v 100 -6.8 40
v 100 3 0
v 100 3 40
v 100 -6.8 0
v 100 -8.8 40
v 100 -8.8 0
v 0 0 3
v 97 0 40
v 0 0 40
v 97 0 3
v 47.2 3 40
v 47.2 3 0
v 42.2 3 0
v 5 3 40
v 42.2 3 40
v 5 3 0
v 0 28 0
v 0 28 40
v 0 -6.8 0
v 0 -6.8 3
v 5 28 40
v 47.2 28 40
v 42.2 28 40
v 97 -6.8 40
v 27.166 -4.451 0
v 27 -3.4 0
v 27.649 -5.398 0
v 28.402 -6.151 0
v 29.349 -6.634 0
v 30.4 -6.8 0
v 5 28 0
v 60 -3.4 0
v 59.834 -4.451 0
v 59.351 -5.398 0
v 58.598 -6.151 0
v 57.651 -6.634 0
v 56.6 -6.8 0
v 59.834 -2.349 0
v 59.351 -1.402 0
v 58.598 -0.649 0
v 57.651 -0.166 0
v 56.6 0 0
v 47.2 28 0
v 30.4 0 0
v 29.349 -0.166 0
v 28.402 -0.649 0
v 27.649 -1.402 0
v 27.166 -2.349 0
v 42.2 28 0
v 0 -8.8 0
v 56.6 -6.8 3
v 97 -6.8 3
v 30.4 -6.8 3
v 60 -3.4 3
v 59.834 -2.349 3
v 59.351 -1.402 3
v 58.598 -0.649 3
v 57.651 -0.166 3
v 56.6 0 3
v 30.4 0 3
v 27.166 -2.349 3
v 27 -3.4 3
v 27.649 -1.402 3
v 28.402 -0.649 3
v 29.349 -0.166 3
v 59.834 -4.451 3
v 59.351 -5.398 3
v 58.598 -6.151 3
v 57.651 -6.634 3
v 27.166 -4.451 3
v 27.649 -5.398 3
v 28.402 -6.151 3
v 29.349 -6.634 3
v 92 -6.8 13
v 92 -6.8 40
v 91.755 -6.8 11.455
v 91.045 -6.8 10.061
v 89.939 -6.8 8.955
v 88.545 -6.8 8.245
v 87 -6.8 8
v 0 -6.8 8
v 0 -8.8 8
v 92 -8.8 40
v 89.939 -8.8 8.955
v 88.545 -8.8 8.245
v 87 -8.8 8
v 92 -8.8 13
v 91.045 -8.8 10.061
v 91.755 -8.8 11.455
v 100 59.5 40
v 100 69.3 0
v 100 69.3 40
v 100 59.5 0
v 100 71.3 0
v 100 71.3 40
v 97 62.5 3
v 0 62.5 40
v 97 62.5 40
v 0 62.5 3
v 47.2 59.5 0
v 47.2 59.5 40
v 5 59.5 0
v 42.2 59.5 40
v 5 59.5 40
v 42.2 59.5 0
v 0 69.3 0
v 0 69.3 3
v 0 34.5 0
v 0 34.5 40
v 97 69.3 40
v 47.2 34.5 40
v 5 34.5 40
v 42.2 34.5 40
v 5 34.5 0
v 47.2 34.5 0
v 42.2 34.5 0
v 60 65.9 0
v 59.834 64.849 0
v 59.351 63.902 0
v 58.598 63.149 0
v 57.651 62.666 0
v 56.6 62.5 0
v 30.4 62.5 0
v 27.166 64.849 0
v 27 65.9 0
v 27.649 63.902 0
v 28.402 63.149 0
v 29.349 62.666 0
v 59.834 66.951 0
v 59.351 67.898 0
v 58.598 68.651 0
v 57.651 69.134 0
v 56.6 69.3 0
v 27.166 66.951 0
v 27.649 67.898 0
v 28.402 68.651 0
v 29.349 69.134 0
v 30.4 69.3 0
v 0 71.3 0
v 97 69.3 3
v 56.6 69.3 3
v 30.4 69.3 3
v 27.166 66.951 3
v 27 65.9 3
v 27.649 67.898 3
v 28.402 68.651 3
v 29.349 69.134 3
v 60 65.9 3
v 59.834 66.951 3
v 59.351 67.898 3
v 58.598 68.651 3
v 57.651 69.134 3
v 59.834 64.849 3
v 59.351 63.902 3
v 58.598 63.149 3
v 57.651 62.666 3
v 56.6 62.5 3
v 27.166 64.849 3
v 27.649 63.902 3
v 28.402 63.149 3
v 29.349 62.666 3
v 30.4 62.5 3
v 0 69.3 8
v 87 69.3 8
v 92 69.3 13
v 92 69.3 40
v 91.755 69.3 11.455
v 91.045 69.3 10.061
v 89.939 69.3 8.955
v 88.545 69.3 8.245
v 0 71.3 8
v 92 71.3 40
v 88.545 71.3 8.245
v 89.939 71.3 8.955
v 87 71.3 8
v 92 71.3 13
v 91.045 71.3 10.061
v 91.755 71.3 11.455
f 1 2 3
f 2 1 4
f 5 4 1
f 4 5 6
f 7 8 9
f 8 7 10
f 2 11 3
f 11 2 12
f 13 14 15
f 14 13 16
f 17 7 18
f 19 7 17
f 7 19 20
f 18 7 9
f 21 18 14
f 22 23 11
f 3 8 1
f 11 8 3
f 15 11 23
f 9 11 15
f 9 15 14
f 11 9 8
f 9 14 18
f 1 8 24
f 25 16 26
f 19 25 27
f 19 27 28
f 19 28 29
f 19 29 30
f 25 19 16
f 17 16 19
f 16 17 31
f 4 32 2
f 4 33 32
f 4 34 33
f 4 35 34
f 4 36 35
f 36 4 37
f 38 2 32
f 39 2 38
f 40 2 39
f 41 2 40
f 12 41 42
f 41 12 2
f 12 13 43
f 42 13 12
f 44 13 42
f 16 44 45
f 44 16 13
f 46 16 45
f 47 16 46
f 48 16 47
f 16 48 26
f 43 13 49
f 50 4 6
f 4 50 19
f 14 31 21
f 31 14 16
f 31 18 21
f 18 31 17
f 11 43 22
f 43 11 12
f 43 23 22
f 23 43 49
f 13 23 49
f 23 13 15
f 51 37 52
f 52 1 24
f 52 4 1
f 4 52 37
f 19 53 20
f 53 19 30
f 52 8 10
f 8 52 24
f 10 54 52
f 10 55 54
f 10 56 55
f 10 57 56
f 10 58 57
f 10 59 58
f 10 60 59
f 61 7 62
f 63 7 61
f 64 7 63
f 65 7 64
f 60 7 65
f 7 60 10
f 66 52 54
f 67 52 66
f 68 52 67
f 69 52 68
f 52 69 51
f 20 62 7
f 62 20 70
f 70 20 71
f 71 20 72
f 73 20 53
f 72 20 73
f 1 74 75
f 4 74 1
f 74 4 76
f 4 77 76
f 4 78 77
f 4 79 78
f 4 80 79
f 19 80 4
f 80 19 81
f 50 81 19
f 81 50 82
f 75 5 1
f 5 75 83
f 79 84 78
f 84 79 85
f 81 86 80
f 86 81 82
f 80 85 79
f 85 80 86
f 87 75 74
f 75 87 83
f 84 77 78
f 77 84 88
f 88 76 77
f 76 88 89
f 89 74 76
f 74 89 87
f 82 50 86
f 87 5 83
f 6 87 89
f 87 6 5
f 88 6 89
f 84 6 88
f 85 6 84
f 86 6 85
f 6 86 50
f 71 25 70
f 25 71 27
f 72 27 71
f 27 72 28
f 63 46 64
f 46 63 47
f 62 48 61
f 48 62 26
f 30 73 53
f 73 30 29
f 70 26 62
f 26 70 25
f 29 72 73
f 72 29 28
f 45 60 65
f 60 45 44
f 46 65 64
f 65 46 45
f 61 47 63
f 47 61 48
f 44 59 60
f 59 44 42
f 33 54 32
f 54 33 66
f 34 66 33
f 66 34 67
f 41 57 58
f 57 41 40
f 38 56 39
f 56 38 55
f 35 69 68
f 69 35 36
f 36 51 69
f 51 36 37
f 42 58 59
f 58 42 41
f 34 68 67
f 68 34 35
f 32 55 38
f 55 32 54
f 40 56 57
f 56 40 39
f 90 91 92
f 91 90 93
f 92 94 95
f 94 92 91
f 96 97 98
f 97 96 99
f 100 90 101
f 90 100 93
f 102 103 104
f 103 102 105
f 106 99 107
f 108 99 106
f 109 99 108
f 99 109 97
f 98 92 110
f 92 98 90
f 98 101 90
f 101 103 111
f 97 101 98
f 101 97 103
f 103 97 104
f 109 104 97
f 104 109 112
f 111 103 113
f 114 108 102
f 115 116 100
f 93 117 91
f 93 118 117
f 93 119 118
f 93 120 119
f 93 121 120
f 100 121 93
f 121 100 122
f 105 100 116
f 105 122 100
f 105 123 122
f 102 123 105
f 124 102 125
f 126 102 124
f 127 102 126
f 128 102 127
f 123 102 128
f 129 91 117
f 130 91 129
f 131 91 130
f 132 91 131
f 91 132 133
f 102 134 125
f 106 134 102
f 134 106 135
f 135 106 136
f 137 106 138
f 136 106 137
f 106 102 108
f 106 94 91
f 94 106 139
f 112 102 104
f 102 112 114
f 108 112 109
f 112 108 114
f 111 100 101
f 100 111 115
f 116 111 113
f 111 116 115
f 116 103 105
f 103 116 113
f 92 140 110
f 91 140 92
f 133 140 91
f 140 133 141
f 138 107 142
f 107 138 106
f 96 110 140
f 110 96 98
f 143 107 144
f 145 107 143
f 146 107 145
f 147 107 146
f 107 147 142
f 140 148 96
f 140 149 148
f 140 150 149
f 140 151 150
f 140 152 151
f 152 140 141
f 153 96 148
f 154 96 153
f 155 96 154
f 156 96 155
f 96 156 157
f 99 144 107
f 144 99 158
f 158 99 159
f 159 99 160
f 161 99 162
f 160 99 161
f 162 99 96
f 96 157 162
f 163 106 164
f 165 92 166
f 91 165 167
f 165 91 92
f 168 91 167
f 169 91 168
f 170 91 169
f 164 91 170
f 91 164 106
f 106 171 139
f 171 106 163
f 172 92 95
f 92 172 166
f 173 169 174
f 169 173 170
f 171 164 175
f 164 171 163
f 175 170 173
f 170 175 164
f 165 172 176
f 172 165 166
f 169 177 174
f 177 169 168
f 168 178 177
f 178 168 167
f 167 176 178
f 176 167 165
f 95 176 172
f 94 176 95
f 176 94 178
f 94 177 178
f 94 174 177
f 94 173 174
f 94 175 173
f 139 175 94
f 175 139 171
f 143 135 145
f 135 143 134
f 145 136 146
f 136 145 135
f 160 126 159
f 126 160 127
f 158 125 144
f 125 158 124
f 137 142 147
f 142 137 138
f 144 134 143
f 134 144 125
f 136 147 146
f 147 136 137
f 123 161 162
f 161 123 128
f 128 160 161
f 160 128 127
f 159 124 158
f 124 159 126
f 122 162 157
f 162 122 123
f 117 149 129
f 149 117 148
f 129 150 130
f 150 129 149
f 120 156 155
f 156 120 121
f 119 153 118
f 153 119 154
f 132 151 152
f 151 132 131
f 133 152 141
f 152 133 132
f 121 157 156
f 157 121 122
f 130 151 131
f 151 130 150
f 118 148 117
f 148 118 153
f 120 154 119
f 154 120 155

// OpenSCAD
cd = 25; // claw depth
cth = 5; // claw thickness
bth = 3; // back plate thickness
fsz = 5; // frame size (the ipad blocker in the front)
fth = 2; // frame thickness (the ipad blocker in the front)
sfsz = 3;// support frame size (the one surround ipad)


h = 100;
l = 40;
nsz = 0; // faceid notch size 15


pth = 6.8;// ipad thickness + tolerance
// ipad pro 11inch gen 2 th=5.9 pth=6.5
// ipad pro 12.9inch gen 5 th=6.72
dth = 37.2;// desk thickness + tolerance

module back_plate() {
    translate([0,0,-bth]) cube([h,l,bth]);
    translate([0,0,-(bth+cd)]) cube([cth,l,bth+cd]);
    translate([dth+cth,0,-(bth+cd)]) cube([cth,l,bth+cd]);
}

module front_frame() {
    difference() {
        cube([h,l,pth]);
        translate([-sfsz,sfsz,0]) cube([h,l,pth]);
    }

    translate([0,0,pth]) difference() {
        cube([h,l,fth]);
        $fn=20; translate([-fsz-sfsz,fsz+sfsz,0]) minkowski() {
            rr = 5; // round corner radius
            rd = rr*2;
            translate([rr,rr,0]) cube([h-rd,l-rd,fth]);
            cylinder(r=rr,h=0.001);
        }
        large = 300; translate([0,sfsz,0]) cube([nsz,large,fth]);
    }
}

module speaker_hole(length, large) {
    mirror([0,1,0]) rotate([90,0,0]) translate([pth/2,pth/2,0]) union() { 
        $fn = 20;
        cylinder(d=pth,h=large);
        translate([length/2-pth/2,0,0]) 
            linear_extrude(large) square([length-pth,pth], center=true);
        translate([length-pth,0,0]) cylinder(d=pth,h=large);
    }
}


module ipad_mount() {
    intersection() {
        large = 300;
        union() { back_plate(); front_frame(); }
        $fn=20; translate([0,0,-large]) minkowski() {
            rr = 0; // round corner radius
            rd = rr*2;
            translate([rr-large,rr,0]) cube([h-rd+large,l-rd+large,fth+pth+large]);
            cylinder(r=rr,h=0.001);
        }
    }
}

module ipad_mount_speaker() {
    difference() {
        ipad_mount();
        translate([27,0,0]) speaker_hole(length=33, large=100);
    }
}

rotate([90,0,0]) ipad_mount_speaker();
translate([0,cd*2.5,0]) mirror([0,1,0]) rotate([90,0,0]) ipad_mount_speaker();
